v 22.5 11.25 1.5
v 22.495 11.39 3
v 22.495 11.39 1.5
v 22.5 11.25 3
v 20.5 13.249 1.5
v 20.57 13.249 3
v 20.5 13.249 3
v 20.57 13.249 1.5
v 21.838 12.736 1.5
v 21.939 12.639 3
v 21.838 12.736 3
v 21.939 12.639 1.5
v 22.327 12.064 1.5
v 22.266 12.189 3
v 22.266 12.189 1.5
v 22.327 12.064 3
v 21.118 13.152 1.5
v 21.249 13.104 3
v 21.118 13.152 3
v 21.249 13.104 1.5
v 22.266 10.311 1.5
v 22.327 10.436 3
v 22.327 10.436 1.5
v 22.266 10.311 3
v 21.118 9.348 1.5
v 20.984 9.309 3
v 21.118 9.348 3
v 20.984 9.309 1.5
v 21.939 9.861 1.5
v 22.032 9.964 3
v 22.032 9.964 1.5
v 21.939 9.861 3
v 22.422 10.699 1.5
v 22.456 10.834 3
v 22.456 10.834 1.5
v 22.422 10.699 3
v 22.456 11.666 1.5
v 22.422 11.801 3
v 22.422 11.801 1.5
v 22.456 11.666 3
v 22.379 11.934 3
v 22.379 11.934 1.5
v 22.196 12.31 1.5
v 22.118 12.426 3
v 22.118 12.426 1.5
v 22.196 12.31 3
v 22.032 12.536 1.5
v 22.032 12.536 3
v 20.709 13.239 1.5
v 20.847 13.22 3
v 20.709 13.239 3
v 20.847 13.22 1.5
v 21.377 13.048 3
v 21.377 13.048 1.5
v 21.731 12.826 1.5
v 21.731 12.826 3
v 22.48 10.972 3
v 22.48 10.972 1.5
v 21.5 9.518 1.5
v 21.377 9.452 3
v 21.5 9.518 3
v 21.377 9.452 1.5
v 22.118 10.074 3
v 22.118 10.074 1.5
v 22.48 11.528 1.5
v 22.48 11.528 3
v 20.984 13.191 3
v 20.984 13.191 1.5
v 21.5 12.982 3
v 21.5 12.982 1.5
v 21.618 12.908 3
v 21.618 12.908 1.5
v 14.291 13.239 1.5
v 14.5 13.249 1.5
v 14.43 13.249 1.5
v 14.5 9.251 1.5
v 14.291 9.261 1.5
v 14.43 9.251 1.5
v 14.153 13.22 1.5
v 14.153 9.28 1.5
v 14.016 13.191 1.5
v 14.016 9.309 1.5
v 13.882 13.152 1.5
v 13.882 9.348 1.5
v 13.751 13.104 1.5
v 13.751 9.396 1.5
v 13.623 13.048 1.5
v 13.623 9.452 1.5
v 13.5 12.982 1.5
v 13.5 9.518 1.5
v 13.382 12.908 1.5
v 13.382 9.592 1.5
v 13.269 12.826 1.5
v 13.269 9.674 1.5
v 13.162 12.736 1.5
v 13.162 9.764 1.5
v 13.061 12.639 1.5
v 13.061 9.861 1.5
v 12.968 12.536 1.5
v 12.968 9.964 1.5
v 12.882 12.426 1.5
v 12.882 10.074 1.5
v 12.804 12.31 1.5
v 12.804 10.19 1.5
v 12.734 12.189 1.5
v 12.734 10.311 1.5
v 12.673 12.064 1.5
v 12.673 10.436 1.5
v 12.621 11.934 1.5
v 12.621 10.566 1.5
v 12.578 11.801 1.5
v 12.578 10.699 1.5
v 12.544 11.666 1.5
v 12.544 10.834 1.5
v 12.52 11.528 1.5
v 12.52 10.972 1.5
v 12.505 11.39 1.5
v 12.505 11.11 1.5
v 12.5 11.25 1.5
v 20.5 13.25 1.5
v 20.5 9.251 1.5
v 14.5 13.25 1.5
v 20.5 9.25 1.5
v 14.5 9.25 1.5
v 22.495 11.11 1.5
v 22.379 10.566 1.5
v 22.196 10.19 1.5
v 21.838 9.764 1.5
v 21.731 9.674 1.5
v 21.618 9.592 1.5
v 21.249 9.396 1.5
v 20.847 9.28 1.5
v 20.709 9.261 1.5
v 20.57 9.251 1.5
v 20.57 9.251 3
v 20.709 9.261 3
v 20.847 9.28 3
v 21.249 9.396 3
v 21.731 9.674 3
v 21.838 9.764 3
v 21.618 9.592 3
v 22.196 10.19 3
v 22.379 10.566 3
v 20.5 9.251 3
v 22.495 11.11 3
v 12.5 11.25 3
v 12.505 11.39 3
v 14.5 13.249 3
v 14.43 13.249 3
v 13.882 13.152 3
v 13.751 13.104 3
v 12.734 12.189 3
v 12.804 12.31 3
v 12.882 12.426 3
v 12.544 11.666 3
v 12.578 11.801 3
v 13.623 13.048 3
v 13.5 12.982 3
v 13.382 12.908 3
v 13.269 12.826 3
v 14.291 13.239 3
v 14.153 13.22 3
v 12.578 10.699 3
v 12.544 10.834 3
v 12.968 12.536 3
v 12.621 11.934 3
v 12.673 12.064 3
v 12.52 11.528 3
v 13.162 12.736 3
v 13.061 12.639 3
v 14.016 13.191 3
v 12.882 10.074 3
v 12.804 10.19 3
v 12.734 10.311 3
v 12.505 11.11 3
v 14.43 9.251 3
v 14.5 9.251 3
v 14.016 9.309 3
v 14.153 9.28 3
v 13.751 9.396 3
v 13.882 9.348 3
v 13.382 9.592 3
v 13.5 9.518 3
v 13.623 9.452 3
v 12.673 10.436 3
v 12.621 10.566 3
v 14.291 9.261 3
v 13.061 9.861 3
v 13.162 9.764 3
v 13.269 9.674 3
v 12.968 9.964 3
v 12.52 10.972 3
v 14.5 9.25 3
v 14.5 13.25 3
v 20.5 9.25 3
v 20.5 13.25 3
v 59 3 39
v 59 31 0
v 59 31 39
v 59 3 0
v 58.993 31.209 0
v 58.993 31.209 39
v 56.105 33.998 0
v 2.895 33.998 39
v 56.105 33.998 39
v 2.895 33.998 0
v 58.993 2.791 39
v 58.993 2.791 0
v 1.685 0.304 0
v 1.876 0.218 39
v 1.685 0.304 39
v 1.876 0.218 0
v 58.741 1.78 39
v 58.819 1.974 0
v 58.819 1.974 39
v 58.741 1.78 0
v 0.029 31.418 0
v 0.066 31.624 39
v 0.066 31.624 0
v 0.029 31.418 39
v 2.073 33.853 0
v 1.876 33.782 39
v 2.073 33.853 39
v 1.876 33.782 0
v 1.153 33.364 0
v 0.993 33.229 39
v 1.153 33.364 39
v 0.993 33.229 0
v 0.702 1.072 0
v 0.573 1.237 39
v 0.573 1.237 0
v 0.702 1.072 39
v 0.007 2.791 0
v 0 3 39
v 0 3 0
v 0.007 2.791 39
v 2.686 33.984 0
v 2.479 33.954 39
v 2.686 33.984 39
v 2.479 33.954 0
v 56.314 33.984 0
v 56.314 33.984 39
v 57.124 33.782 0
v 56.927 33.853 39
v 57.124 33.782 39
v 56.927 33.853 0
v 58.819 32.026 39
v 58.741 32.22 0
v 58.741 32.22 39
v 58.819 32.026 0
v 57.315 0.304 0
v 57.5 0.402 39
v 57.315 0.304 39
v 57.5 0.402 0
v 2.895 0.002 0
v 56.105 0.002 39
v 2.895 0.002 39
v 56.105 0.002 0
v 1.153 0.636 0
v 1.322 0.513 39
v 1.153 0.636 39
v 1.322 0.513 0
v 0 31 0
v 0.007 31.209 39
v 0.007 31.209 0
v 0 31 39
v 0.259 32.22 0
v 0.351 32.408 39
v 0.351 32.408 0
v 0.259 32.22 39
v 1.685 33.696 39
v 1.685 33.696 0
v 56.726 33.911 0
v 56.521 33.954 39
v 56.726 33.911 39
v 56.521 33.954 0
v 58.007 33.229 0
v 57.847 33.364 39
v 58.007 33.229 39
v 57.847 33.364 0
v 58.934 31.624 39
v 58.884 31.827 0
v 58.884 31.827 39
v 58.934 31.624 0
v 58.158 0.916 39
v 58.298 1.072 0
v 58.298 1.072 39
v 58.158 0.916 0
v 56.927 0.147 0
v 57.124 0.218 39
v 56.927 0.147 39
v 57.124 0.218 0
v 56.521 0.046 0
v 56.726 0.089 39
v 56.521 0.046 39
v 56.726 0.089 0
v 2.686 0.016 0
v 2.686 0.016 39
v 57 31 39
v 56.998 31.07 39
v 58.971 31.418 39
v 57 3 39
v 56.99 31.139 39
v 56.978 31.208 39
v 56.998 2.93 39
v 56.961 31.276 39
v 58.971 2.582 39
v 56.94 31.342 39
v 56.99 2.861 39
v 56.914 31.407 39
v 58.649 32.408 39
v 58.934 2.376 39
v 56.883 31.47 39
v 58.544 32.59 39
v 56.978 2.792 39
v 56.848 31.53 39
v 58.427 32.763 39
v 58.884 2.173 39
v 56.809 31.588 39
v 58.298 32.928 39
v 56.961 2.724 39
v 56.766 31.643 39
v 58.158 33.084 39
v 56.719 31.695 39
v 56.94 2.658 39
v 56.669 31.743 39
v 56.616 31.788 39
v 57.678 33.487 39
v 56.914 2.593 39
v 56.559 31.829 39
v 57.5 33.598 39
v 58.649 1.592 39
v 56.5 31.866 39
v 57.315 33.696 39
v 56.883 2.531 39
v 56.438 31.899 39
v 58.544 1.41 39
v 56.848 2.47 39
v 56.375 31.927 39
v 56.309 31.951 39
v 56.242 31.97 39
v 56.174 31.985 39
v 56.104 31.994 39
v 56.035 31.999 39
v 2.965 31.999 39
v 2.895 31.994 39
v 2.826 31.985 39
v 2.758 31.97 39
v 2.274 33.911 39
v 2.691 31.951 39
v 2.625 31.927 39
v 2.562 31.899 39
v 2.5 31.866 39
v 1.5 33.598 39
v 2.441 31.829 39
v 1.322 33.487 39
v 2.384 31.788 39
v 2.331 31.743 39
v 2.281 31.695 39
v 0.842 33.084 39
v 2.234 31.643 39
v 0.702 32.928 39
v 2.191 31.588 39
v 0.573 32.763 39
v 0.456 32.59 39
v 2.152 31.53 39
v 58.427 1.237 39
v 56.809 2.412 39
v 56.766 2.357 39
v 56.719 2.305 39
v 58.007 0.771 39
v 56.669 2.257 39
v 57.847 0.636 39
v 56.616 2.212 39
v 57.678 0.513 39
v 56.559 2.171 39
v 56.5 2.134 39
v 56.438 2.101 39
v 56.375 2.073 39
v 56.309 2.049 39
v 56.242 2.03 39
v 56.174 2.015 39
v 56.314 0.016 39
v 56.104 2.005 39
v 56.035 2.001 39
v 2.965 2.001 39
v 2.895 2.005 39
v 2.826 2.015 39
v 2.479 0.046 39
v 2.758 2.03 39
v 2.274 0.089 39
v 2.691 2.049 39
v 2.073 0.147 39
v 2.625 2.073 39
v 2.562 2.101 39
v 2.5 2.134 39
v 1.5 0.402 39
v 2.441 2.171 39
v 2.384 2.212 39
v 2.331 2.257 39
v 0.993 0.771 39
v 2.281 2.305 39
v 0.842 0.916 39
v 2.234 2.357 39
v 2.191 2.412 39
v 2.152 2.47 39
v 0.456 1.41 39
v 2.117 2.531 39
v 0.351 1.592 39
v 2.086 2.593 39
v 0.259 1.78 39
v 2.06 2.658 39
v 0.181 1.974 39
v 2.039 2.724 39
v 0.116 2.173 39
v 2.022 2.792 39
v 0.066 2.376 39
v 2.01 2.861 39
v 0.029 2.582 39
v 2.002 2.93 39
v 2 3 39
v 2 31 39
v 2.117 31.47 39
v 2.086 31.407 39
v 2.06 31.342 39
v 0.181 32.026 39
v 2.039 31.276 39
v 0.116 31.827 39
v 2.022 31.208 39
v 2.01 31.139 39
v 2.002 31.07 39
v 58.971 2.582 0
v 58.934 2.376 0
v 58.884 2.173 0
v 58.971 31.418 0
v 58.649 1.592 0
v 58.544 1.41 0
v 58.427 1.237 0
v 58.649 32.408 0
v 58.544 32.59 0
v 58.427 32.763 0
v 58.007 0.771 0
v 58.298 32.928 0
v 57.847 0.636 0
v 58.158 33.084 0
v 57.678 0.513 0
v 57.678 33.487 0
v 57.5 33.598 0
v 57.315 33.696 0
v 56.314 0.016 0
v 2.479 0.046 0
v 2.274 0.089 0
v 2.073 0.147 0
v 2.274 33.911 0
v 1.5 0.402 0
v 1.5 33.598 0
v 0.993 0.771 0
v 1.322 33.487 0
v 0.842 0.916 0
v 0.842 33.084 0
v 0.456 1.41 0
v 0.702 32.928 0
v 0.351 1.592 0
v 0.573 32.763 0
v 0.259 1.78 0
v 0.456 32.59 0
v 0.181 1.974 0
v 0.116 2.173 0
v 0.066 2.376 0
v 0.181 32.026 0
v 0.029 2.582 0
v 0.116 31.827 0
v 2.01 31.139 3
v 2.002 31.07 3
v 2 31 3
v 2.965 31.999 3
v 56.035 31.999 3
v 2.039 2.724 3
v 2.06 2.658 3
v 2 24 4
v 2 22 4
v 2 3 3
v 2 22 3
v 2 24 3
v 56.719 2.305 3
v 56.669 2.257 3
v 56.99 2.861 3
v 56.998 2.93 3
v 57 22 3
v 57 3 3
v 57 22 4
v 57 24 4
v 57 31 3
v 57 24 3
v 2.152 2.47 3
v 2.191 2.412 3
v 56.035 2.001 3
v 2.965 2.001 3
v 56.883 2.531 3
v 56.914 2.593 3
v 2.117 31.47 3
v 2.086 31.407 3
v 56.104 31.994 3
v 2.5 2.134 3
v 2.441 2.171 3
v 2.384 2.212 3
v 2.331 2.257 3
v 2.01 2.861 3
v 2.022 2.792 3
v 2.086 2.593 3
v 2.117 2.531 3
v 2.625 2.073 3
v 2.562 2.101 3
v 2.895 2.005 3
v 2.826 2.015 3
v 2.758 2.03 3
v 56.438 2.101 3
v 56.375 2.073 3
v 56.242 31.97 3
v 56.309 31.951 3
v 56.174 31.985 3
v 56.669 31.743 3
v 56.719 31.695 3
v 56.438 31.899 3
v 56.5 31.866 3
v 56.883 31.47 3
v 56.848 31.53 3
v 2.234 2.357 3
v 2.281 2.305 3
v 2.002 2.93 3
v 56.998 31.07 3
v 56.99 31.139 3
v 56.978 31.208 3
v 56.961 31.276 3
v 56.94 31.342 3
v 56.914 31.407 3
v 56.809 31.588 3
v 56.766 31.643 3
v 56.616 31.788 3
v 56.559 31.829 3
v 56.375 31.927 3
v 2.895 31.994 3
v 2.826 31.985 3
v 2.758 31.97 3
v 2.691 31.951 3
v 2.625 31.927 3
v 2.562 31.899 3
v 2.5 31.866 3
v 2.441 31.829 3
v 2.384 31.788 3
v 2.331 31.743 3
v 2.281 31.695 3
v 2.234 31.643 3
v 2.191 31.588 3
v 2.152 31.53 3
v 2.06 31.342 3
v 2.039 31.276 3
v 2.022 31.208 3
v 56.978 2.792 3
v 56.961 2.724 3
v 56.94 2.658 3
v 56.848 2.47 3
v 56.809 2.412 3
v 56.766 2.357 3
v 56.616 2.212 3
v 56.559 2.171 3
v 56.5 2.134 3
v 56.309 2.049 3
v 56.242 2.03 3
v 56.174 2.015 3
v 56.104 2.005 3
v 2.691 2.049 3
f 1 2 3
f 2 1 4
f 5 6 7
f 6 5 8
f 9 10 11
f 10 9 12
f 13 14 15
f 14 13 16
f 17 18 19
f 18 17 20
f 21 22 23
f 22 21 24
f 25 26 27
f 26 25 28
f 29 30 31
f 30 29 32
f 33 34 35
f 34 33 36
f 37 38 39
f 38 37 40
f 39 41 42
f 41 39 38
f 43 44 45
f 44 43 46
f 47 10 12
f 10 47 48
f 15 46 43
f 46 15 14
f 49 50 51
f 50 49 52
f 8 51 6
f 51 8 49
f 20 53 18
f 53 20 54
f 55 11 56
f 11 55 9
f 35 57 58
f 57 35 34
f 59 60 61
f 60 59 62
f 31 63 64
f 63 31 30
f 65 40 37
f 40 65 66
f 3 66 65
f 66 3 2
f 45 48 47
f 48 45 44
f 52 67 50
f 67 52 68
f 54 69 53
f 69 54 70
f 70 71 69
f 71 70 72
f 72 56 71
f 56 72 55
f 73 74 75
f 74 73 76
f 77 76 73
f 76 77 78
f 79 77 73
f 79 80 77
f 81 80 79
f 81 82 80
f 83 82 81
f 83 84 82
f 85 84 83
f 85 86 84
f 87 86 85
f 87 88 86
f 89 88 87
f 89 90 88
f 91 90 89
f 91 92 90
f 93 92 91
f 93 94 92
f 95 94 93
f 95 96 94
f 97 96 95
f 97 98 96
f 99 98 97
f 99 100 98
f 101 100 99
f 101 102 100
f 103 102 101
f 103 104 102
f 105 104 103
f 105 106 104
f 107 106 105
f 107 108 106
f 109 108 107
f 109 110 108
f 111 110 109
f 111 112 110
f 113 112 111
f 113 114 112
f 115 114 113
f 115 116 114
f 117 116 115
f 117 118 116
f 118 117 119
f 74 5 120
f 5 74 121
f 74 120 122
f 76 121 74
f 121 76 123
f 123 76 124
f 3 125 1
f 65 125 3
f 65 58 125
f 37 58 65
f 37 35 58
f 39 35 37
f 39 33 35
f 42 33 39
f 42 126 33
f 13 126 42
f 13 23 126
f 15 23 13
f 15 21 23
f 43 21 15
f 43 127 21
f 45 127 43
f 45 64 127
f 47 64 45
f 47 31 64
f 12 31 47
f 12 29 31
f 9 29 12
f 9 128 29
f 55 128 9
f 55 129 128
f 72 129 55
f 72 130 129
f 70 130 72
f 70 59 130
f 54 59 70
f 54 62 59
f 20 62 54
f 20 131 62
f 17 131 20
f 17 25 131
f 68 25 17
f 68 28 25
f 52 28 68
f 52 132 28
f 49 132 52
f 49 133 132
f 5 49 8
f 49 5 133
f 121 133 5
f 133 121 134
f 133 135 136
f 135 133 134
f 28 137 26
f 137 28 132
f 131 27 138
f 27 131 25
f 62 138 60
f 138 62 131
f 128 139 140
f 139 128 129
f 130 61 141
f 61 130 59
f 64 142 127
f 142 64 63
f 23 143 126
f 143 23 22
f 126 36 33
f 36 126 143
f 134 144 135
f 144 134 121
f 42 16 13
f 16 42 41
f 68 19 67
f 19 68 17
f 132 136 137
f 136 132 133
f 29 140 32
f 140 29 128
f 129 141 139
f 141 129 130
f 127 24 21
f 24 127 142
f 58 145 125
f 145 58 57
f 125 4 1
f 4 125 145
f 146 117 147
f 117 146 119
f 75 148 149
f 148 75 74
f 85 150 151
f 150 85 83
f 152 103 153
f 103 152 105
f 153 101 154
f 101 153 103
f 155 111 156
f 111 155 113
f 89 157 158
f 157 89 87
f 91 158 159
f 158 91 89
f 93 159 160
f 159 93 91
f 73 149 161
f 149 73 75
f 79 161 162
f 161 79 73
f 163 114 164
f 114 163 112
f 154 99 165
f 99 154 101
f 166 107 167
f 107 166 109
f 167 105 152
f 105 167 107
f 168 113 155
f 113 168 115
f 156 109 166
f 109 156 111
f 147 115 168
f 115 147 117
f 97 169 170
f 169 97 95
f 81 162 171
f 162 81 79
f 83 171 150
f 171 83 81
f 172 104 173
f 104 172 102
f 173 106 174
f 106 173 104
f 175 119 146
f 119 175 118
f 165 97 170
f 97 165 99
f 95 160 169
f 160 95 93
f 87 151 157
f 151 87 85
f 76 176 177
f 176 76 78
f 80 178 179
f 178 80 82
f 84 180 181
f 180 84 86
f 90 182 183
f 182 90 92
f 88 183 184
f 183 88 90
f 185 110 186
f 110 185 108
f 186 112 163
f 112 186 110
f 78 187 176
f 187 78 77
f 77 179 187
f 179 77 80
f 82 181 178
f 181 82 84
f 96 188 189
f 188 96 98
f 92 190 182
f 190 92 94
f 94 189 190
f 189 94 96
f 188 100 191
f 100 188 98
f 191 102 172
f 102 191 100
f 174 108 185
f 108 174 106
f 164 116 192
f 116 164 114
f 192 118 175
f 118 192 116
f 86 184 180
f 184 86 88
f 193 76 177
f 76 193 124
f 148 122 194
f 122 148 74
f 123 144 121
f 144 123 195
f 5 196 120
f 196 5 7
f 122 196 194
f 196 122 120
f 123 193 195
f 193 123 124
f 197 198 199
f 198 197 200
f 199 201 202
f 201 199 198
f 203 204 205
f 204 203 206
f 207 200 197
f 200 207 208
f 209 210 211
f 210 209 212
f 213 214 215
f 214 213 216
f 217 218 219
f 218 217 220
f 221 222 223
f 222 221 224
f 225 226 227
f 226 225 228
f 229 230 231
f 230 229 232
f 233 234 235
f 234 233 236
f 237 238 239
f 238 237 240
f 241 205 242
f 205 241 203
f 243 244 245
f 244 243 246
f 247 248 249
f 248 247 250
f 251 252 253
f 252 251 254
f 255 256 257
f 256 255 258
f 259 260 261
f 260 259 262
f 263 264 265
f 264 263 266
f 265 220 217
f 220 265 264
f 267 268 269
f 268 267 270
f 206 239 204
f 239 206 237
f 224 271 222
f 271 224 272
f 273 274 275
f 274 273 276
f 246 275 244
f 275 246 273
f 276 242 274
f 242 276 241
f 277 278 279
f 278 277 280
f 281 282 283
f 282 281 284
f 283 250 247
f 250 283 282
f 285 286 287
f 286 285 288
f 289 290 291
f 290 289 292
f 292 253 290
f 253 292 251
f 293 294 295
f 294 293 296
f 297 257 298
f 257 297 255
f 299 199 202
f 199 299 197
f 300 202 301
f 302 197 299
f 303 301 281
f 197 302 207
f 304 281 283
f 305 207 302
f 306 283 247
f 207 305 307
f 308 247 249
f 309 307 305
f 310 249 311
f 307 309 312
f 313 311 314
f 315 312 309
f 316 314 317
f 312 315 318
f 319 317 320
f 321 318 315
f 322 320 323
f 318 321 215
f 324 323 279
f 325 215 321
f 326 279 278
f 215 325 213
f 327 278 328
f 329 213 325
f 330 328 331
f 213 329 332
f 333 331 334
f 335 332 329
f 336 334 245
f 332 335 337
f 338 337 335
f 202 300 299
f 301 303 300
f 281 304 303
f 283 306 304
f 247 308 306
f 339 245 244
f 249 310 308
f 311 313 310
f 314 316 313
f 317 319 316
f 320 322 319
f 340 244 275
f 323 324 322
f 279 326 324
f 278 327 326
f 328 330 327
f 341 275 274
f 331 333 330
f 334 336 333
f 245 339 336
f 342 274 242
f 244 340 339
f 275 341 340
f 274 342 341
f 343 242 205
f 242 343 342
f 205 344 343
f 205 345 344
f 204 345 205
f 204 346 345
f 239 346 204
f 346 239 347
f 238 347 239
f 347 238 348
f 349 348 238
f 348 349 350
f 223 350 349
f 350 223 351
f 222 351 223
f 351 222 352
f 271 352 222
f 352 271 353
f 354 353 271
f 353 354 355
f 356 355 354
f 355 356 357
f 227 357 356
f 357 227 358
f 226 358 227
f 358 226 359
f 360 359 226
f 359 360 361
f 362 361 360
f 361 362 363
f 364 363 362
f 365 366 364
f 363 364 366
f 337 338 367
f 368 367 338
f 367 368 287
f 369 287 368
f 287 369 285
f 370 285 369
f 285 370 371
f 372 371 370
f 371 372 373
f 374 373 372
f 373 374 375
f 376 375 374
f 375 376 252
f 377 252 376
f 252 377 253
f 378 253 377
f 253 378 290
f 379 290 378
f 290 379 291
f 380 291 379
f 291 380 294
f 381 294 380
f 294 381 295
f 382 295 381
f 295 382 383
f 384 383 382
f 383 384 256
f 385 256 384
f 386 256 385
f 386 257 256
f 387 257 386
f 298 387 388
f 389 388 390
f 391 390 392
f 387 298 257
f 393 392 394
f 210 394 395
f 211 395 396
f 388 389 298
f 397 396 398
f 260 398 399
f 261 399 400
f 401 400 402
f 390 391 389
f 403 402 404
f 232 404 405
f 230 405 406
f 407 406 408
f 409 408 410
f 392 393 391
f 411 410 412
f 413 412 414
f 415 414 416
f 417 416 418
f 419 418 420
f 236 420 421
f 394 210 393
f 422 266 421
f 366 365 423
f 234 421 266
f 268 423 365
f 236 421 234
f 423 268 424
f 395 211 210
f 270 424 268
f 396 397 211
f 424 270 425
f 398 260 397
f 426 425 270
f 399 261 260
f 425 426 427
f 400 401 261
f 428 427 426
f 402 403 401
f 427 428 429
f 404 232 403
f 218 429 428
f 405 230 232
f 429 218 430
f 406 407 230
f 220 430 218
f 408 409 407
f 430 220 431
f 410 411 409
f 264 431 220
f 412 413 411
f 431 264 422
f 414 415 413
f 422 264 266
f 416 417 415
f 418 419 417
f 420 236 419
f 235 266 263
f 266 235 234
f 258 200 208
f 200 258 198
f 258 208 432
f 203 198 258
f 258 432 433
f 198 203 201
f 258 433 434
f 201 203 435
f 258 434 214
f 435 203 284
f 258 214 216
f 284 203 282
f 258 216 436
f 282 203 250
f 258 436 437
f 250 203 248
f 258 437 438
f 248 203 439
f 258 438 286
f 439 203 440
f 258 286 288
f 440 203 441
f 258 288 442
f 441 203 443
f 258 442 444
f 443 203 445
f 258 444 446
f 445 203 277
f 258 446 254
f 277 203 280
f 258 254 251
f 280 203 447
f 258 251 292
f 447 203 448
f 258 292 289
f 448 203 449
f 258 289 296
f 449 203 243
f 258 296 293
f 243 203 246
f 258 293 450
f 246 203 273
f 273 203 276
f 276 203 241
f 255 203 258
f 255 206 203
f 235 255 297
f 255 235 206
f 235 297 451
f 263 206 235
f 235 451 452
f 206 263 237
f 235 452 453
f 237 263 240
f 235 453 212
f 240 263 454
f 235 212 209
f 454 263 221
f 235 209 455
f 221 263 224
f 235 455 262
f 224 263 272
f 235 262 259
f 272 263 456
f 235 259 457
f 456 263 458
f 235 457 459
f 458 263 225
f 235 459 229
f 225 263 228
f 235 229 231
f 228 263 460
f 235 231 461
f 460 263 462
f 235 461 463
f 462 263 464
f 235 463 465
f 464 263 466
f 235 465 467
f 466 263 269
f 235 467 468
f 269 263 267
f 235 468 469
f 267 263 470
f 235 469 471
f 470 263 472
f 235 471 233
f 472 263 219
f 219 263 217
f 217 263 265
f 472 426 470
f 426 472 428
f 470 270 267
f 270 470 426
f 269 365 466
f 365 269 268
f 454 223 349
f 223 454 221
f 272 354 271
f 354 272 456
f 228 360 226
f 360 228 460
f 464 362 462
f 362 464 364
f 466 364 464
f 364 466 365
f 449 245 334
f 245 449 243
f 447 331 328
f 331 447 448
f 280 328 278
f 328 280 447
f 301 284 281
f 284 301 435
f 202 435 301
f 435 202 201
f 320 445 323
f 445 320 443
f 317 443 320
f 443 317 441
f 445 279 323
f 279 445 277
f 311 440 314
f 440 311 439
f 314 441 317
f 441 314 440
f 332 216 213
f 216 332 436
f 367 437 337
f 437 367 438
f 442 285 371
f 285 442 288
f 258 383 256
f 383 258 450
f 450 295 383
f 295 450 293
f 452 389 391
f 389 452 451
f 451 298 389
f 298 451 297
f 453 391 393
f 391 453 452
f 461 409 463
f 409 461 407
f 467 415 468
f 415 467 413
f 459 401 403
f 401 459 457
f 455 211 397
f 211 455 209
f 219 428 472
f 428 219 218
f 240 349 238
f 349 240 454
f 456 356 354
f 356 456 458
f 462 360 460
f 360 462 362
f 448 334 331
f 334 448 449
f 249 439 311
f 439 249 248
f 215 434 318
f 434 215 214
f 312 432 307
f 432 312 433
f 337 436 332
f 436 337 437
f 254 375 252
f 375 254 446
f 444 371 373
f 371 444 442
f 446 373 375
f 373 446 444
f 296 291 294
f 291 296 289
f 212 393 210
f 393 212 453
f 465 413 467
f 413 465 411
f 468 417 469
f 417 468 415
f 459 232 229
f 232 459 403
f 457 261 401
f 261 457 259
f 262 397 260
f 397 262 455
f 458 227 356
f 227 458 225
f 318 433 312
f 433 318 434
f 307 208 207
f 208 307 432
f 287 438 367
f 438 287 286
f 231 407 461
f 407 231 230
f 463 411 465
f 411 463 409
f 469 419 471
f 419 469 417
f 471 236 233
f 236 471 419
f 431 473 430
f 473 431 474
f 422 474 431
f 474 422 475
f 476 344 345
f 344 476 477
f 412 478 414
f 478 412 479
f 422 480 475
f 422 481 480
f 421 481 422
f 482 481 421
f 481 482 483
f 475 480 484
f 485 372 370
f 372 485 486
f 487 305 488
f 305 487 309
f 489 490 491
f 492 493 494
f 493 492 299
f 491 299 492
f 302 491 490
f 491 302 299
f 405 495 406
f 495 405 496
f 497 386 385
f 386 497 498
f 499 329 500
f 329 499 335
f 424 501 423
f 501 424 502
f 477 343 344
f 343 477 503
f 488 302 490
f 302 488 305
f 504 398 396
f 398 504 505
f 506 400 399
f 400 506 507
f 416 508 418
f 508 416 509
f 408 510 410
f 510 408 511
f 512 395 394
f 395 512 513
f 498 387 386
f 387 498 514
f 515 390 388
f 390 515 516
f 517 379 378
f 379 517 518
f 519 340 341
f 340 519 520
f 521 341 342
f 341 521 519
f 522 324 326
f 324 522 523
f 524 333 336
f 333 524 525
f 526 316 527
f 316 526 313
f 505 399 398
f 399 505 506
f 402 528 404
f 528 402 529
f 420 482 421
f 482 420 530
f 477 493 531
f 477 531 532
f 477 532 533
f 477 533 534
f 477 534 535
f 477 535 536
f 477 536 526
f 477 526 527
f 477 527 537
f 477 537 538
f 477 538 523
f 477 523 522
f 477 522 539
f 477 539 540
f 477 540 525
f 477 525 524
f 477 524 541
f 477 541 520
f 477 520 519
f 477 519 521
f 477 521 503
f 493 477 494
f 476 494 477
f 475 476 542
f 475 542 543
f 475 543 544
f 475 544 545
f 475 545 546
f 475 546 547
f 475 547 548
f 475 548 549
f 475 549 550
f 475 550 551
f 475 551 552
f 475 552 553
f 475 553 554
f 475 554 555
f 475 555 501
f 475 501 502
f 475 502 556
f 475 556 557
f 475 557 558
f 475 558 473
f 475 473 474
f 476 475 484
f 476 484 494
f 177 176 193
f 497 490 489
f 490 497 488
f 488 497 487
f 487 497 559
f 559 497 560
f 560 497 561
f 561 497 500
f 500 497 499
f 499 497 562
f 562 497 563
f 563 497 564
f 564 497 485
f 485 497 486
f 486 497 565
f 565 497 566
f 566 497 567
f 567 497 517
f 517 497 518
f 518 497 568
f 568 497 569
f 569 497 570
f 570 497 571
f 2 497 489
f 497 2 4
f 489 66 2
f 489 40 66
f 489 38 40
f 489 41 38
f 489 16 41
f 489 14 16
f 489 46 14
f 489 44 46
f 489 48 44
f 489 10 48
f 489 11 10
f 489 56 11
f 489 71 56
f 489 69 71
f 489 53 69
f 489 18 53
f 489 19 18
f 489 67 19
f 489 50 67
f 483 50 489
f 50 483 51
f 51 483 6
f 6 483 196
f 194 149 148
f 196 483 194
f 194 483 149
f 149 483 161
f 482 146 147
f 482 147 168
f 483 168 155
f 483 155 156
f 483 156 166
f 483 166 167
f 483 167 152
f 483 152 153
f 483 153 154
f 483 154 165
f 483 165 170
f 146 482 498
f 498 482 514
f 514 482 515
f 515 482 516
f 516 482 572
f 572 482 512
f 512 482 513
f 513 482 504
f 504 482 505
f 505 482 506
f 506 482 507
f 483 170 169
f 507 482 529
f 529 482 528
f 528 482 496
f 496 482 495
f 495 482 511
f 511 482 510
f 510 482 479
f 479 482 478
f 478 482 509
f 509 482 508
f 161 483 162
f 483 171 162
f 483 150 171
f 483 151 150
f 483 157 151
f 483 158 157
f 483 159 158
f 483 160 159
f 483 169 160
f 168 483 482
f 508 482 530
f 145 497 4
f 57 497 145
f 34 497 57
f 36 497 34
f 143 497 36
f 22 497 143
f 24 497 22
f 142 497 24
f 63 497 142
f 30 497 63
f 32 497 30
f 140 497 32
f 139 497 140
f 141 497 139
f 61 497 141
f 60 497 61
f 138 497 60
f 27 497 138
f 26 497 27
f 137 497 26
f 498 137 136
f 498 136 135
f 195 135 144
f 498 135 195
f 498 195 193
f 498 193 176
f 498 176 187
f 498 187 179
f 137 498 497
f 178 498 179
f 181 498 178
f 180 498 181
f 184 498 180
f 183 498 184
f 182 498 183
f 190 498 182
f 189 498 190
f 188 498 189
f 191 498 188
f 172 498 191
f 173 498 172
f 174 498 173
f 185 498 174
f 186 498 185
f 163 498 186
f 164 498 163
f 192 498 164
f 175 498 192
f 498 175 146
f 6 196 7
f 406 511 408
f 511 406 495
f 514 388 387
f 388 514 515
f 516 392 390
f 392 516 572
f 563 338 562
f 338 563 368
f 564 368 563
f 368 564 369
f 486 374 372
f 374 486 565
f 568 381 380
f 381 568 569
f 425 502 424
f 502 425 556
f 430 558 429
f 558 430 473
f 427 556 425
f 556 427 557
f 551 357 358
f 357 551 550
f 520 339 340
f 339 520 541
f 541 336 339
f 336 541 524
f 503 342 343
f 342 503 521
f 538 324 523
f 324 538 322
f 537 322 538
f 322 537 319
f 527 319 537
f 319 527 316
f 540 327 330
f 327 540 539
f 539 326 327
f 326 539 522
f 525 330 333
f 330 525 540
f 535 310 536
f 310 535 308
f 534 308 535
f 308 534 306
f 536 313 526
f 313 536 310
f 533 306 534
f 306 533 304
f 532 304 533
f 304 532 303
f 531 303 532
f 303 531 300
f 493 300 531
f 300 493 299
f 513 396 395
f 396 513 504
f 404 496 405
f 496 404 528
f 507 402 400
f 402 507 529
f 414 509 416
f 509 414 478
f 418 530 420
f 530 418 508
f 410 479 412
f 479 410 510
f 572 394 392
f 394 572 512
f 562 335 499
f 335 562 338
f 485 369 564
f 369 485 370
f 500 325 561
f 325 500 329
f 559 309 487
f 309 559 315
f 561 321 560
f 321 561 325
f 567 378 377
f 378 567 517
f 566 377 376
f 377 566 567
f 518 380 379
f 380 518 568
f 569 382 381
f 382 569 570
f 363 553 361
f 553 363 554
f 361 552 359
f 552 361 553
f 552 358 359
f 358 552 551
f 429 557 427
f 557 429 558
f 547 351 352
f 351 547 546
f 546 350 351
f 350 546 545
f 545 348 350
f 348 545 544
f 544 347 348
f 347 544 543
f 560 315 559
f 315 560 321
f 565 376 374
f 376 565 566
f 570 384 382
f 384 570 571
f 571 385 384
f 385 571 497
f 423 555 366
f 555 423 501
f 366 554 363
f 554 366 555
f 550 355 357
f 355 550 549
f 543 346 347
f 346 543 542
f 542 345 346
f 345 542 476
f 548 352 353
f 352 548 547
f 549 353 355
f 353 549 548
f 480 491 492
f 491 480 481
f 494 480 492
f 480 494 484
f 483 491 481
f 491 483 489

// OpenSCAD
// Simple Cover for the Iridium Mini Beacon without USB opening

$fn=90; // fragments
wall = 2.0; // wall thickness
end_wall = 3.0; // end wall thickness
internal_width = 55.0; // internal width (X) of the cover
internal_depth = 30.0; // internal depth (Y) of the cover
internal_height = 35.0; // internal height (Z) of the cover
lid_insert = 1.0; // extra height for the lid insert

battery_support_height = 1.0; // Height (Z) of the battery support above the floor
battery_support_depth = 2.0; // Depth (Y) of the battery support
battery_support_offset = 5.0; // Y offset of the battery support

internal_corner_radius = 1.0; // radius of the internal corner cylinder

usb_r = 2.0; // radius of the opening for the USB connector
usb_width = 10.0; // total width of the opening for the USB
usb_height = 1.5; // height of the recess for the USB connector
usb_x_offset = -12.0; // X offset of the USB connector
usb_y_offset = 5.75; // y offset of the USB connector

height = internal_height + end_wall + lid_insert; // cover external height (Z)
width = internal_width + (2 * wall); // cover external width (X)
depth = internal_depth + (2 * wall); // cover external depth (Y)

external_corner_radius = internal_corner_radius + wall; // external corner radius

module cover()
{
    translate([external_corner_radius, external_corner_radius, 0])
        minkowski() {
            cube([(width - (2 * external_corner_radius)), (depth - (2 * external_corner_radius)), (height / 2)]);
            cylinder(h=(height / 2), r=external_corner_radius);
        }
}

module void()
// Void will be higher than required to avoid zero thickness skin across opening
{
    translate([external_corner_radius, external_corner_radius, end_wall])
        minkowski() {
            cube([(internal_width - (2 * internal_corner_radius)), (internal_depth - (2 * internal_corner_radius)), (height / 2)]);
            cylinder(h=(height / 2), r=internal_corner_radius);
        }
}

module usb_opening_end_1()
// Cylinder is taller than it needs to be to avoid zero thickness skins
{
    translate([((usb_width / 2) - usb_r),0, 0]) {
        cylinder(h=end_wall,r=usb_r);
    }
}

module usb_opening_end_2()
// Cylinder is taller than it needs to be to avoid zero thickness skins
{
    translate([(0-((usb_width / 2) - usb_r)),0, 0]) {
        cylinder(h=end_wall,r=usb_r);
    }
}

module usb_opening_mid()
// Cube is taller than it needs to be to avoid zero thickness skins
{
    translate([(-0.5 * (usb_width - (2 * usb_r))), (-0.5 * (2 * usb_r)), 0]) {
        cube([(usb_width - (2 * usb_r)), (2 * usb_r), end_wall]);
    }
}

module usb()
{
    translate([((width / 2) + usb_x_offset), ((depth / 2) - usb_y_offset), (end_wall - usb_height)]) {
        union() {
            usb_opening_end_1();
            usb_opening_end_2();
            usb_opening_mid();
        }
    }
}

module battery_support()
{
    translate([0, ((depth/2) + battery_support_offset), 0]) {
        cube([width, battery_support_depth, (end_wall + battery_support_height)]);
    }
}

module finished_cover()
{
    union() {
        difference() {
            cover();
            void();
            usb();
        }
        battery_support();
    }
}

finished_cover();
